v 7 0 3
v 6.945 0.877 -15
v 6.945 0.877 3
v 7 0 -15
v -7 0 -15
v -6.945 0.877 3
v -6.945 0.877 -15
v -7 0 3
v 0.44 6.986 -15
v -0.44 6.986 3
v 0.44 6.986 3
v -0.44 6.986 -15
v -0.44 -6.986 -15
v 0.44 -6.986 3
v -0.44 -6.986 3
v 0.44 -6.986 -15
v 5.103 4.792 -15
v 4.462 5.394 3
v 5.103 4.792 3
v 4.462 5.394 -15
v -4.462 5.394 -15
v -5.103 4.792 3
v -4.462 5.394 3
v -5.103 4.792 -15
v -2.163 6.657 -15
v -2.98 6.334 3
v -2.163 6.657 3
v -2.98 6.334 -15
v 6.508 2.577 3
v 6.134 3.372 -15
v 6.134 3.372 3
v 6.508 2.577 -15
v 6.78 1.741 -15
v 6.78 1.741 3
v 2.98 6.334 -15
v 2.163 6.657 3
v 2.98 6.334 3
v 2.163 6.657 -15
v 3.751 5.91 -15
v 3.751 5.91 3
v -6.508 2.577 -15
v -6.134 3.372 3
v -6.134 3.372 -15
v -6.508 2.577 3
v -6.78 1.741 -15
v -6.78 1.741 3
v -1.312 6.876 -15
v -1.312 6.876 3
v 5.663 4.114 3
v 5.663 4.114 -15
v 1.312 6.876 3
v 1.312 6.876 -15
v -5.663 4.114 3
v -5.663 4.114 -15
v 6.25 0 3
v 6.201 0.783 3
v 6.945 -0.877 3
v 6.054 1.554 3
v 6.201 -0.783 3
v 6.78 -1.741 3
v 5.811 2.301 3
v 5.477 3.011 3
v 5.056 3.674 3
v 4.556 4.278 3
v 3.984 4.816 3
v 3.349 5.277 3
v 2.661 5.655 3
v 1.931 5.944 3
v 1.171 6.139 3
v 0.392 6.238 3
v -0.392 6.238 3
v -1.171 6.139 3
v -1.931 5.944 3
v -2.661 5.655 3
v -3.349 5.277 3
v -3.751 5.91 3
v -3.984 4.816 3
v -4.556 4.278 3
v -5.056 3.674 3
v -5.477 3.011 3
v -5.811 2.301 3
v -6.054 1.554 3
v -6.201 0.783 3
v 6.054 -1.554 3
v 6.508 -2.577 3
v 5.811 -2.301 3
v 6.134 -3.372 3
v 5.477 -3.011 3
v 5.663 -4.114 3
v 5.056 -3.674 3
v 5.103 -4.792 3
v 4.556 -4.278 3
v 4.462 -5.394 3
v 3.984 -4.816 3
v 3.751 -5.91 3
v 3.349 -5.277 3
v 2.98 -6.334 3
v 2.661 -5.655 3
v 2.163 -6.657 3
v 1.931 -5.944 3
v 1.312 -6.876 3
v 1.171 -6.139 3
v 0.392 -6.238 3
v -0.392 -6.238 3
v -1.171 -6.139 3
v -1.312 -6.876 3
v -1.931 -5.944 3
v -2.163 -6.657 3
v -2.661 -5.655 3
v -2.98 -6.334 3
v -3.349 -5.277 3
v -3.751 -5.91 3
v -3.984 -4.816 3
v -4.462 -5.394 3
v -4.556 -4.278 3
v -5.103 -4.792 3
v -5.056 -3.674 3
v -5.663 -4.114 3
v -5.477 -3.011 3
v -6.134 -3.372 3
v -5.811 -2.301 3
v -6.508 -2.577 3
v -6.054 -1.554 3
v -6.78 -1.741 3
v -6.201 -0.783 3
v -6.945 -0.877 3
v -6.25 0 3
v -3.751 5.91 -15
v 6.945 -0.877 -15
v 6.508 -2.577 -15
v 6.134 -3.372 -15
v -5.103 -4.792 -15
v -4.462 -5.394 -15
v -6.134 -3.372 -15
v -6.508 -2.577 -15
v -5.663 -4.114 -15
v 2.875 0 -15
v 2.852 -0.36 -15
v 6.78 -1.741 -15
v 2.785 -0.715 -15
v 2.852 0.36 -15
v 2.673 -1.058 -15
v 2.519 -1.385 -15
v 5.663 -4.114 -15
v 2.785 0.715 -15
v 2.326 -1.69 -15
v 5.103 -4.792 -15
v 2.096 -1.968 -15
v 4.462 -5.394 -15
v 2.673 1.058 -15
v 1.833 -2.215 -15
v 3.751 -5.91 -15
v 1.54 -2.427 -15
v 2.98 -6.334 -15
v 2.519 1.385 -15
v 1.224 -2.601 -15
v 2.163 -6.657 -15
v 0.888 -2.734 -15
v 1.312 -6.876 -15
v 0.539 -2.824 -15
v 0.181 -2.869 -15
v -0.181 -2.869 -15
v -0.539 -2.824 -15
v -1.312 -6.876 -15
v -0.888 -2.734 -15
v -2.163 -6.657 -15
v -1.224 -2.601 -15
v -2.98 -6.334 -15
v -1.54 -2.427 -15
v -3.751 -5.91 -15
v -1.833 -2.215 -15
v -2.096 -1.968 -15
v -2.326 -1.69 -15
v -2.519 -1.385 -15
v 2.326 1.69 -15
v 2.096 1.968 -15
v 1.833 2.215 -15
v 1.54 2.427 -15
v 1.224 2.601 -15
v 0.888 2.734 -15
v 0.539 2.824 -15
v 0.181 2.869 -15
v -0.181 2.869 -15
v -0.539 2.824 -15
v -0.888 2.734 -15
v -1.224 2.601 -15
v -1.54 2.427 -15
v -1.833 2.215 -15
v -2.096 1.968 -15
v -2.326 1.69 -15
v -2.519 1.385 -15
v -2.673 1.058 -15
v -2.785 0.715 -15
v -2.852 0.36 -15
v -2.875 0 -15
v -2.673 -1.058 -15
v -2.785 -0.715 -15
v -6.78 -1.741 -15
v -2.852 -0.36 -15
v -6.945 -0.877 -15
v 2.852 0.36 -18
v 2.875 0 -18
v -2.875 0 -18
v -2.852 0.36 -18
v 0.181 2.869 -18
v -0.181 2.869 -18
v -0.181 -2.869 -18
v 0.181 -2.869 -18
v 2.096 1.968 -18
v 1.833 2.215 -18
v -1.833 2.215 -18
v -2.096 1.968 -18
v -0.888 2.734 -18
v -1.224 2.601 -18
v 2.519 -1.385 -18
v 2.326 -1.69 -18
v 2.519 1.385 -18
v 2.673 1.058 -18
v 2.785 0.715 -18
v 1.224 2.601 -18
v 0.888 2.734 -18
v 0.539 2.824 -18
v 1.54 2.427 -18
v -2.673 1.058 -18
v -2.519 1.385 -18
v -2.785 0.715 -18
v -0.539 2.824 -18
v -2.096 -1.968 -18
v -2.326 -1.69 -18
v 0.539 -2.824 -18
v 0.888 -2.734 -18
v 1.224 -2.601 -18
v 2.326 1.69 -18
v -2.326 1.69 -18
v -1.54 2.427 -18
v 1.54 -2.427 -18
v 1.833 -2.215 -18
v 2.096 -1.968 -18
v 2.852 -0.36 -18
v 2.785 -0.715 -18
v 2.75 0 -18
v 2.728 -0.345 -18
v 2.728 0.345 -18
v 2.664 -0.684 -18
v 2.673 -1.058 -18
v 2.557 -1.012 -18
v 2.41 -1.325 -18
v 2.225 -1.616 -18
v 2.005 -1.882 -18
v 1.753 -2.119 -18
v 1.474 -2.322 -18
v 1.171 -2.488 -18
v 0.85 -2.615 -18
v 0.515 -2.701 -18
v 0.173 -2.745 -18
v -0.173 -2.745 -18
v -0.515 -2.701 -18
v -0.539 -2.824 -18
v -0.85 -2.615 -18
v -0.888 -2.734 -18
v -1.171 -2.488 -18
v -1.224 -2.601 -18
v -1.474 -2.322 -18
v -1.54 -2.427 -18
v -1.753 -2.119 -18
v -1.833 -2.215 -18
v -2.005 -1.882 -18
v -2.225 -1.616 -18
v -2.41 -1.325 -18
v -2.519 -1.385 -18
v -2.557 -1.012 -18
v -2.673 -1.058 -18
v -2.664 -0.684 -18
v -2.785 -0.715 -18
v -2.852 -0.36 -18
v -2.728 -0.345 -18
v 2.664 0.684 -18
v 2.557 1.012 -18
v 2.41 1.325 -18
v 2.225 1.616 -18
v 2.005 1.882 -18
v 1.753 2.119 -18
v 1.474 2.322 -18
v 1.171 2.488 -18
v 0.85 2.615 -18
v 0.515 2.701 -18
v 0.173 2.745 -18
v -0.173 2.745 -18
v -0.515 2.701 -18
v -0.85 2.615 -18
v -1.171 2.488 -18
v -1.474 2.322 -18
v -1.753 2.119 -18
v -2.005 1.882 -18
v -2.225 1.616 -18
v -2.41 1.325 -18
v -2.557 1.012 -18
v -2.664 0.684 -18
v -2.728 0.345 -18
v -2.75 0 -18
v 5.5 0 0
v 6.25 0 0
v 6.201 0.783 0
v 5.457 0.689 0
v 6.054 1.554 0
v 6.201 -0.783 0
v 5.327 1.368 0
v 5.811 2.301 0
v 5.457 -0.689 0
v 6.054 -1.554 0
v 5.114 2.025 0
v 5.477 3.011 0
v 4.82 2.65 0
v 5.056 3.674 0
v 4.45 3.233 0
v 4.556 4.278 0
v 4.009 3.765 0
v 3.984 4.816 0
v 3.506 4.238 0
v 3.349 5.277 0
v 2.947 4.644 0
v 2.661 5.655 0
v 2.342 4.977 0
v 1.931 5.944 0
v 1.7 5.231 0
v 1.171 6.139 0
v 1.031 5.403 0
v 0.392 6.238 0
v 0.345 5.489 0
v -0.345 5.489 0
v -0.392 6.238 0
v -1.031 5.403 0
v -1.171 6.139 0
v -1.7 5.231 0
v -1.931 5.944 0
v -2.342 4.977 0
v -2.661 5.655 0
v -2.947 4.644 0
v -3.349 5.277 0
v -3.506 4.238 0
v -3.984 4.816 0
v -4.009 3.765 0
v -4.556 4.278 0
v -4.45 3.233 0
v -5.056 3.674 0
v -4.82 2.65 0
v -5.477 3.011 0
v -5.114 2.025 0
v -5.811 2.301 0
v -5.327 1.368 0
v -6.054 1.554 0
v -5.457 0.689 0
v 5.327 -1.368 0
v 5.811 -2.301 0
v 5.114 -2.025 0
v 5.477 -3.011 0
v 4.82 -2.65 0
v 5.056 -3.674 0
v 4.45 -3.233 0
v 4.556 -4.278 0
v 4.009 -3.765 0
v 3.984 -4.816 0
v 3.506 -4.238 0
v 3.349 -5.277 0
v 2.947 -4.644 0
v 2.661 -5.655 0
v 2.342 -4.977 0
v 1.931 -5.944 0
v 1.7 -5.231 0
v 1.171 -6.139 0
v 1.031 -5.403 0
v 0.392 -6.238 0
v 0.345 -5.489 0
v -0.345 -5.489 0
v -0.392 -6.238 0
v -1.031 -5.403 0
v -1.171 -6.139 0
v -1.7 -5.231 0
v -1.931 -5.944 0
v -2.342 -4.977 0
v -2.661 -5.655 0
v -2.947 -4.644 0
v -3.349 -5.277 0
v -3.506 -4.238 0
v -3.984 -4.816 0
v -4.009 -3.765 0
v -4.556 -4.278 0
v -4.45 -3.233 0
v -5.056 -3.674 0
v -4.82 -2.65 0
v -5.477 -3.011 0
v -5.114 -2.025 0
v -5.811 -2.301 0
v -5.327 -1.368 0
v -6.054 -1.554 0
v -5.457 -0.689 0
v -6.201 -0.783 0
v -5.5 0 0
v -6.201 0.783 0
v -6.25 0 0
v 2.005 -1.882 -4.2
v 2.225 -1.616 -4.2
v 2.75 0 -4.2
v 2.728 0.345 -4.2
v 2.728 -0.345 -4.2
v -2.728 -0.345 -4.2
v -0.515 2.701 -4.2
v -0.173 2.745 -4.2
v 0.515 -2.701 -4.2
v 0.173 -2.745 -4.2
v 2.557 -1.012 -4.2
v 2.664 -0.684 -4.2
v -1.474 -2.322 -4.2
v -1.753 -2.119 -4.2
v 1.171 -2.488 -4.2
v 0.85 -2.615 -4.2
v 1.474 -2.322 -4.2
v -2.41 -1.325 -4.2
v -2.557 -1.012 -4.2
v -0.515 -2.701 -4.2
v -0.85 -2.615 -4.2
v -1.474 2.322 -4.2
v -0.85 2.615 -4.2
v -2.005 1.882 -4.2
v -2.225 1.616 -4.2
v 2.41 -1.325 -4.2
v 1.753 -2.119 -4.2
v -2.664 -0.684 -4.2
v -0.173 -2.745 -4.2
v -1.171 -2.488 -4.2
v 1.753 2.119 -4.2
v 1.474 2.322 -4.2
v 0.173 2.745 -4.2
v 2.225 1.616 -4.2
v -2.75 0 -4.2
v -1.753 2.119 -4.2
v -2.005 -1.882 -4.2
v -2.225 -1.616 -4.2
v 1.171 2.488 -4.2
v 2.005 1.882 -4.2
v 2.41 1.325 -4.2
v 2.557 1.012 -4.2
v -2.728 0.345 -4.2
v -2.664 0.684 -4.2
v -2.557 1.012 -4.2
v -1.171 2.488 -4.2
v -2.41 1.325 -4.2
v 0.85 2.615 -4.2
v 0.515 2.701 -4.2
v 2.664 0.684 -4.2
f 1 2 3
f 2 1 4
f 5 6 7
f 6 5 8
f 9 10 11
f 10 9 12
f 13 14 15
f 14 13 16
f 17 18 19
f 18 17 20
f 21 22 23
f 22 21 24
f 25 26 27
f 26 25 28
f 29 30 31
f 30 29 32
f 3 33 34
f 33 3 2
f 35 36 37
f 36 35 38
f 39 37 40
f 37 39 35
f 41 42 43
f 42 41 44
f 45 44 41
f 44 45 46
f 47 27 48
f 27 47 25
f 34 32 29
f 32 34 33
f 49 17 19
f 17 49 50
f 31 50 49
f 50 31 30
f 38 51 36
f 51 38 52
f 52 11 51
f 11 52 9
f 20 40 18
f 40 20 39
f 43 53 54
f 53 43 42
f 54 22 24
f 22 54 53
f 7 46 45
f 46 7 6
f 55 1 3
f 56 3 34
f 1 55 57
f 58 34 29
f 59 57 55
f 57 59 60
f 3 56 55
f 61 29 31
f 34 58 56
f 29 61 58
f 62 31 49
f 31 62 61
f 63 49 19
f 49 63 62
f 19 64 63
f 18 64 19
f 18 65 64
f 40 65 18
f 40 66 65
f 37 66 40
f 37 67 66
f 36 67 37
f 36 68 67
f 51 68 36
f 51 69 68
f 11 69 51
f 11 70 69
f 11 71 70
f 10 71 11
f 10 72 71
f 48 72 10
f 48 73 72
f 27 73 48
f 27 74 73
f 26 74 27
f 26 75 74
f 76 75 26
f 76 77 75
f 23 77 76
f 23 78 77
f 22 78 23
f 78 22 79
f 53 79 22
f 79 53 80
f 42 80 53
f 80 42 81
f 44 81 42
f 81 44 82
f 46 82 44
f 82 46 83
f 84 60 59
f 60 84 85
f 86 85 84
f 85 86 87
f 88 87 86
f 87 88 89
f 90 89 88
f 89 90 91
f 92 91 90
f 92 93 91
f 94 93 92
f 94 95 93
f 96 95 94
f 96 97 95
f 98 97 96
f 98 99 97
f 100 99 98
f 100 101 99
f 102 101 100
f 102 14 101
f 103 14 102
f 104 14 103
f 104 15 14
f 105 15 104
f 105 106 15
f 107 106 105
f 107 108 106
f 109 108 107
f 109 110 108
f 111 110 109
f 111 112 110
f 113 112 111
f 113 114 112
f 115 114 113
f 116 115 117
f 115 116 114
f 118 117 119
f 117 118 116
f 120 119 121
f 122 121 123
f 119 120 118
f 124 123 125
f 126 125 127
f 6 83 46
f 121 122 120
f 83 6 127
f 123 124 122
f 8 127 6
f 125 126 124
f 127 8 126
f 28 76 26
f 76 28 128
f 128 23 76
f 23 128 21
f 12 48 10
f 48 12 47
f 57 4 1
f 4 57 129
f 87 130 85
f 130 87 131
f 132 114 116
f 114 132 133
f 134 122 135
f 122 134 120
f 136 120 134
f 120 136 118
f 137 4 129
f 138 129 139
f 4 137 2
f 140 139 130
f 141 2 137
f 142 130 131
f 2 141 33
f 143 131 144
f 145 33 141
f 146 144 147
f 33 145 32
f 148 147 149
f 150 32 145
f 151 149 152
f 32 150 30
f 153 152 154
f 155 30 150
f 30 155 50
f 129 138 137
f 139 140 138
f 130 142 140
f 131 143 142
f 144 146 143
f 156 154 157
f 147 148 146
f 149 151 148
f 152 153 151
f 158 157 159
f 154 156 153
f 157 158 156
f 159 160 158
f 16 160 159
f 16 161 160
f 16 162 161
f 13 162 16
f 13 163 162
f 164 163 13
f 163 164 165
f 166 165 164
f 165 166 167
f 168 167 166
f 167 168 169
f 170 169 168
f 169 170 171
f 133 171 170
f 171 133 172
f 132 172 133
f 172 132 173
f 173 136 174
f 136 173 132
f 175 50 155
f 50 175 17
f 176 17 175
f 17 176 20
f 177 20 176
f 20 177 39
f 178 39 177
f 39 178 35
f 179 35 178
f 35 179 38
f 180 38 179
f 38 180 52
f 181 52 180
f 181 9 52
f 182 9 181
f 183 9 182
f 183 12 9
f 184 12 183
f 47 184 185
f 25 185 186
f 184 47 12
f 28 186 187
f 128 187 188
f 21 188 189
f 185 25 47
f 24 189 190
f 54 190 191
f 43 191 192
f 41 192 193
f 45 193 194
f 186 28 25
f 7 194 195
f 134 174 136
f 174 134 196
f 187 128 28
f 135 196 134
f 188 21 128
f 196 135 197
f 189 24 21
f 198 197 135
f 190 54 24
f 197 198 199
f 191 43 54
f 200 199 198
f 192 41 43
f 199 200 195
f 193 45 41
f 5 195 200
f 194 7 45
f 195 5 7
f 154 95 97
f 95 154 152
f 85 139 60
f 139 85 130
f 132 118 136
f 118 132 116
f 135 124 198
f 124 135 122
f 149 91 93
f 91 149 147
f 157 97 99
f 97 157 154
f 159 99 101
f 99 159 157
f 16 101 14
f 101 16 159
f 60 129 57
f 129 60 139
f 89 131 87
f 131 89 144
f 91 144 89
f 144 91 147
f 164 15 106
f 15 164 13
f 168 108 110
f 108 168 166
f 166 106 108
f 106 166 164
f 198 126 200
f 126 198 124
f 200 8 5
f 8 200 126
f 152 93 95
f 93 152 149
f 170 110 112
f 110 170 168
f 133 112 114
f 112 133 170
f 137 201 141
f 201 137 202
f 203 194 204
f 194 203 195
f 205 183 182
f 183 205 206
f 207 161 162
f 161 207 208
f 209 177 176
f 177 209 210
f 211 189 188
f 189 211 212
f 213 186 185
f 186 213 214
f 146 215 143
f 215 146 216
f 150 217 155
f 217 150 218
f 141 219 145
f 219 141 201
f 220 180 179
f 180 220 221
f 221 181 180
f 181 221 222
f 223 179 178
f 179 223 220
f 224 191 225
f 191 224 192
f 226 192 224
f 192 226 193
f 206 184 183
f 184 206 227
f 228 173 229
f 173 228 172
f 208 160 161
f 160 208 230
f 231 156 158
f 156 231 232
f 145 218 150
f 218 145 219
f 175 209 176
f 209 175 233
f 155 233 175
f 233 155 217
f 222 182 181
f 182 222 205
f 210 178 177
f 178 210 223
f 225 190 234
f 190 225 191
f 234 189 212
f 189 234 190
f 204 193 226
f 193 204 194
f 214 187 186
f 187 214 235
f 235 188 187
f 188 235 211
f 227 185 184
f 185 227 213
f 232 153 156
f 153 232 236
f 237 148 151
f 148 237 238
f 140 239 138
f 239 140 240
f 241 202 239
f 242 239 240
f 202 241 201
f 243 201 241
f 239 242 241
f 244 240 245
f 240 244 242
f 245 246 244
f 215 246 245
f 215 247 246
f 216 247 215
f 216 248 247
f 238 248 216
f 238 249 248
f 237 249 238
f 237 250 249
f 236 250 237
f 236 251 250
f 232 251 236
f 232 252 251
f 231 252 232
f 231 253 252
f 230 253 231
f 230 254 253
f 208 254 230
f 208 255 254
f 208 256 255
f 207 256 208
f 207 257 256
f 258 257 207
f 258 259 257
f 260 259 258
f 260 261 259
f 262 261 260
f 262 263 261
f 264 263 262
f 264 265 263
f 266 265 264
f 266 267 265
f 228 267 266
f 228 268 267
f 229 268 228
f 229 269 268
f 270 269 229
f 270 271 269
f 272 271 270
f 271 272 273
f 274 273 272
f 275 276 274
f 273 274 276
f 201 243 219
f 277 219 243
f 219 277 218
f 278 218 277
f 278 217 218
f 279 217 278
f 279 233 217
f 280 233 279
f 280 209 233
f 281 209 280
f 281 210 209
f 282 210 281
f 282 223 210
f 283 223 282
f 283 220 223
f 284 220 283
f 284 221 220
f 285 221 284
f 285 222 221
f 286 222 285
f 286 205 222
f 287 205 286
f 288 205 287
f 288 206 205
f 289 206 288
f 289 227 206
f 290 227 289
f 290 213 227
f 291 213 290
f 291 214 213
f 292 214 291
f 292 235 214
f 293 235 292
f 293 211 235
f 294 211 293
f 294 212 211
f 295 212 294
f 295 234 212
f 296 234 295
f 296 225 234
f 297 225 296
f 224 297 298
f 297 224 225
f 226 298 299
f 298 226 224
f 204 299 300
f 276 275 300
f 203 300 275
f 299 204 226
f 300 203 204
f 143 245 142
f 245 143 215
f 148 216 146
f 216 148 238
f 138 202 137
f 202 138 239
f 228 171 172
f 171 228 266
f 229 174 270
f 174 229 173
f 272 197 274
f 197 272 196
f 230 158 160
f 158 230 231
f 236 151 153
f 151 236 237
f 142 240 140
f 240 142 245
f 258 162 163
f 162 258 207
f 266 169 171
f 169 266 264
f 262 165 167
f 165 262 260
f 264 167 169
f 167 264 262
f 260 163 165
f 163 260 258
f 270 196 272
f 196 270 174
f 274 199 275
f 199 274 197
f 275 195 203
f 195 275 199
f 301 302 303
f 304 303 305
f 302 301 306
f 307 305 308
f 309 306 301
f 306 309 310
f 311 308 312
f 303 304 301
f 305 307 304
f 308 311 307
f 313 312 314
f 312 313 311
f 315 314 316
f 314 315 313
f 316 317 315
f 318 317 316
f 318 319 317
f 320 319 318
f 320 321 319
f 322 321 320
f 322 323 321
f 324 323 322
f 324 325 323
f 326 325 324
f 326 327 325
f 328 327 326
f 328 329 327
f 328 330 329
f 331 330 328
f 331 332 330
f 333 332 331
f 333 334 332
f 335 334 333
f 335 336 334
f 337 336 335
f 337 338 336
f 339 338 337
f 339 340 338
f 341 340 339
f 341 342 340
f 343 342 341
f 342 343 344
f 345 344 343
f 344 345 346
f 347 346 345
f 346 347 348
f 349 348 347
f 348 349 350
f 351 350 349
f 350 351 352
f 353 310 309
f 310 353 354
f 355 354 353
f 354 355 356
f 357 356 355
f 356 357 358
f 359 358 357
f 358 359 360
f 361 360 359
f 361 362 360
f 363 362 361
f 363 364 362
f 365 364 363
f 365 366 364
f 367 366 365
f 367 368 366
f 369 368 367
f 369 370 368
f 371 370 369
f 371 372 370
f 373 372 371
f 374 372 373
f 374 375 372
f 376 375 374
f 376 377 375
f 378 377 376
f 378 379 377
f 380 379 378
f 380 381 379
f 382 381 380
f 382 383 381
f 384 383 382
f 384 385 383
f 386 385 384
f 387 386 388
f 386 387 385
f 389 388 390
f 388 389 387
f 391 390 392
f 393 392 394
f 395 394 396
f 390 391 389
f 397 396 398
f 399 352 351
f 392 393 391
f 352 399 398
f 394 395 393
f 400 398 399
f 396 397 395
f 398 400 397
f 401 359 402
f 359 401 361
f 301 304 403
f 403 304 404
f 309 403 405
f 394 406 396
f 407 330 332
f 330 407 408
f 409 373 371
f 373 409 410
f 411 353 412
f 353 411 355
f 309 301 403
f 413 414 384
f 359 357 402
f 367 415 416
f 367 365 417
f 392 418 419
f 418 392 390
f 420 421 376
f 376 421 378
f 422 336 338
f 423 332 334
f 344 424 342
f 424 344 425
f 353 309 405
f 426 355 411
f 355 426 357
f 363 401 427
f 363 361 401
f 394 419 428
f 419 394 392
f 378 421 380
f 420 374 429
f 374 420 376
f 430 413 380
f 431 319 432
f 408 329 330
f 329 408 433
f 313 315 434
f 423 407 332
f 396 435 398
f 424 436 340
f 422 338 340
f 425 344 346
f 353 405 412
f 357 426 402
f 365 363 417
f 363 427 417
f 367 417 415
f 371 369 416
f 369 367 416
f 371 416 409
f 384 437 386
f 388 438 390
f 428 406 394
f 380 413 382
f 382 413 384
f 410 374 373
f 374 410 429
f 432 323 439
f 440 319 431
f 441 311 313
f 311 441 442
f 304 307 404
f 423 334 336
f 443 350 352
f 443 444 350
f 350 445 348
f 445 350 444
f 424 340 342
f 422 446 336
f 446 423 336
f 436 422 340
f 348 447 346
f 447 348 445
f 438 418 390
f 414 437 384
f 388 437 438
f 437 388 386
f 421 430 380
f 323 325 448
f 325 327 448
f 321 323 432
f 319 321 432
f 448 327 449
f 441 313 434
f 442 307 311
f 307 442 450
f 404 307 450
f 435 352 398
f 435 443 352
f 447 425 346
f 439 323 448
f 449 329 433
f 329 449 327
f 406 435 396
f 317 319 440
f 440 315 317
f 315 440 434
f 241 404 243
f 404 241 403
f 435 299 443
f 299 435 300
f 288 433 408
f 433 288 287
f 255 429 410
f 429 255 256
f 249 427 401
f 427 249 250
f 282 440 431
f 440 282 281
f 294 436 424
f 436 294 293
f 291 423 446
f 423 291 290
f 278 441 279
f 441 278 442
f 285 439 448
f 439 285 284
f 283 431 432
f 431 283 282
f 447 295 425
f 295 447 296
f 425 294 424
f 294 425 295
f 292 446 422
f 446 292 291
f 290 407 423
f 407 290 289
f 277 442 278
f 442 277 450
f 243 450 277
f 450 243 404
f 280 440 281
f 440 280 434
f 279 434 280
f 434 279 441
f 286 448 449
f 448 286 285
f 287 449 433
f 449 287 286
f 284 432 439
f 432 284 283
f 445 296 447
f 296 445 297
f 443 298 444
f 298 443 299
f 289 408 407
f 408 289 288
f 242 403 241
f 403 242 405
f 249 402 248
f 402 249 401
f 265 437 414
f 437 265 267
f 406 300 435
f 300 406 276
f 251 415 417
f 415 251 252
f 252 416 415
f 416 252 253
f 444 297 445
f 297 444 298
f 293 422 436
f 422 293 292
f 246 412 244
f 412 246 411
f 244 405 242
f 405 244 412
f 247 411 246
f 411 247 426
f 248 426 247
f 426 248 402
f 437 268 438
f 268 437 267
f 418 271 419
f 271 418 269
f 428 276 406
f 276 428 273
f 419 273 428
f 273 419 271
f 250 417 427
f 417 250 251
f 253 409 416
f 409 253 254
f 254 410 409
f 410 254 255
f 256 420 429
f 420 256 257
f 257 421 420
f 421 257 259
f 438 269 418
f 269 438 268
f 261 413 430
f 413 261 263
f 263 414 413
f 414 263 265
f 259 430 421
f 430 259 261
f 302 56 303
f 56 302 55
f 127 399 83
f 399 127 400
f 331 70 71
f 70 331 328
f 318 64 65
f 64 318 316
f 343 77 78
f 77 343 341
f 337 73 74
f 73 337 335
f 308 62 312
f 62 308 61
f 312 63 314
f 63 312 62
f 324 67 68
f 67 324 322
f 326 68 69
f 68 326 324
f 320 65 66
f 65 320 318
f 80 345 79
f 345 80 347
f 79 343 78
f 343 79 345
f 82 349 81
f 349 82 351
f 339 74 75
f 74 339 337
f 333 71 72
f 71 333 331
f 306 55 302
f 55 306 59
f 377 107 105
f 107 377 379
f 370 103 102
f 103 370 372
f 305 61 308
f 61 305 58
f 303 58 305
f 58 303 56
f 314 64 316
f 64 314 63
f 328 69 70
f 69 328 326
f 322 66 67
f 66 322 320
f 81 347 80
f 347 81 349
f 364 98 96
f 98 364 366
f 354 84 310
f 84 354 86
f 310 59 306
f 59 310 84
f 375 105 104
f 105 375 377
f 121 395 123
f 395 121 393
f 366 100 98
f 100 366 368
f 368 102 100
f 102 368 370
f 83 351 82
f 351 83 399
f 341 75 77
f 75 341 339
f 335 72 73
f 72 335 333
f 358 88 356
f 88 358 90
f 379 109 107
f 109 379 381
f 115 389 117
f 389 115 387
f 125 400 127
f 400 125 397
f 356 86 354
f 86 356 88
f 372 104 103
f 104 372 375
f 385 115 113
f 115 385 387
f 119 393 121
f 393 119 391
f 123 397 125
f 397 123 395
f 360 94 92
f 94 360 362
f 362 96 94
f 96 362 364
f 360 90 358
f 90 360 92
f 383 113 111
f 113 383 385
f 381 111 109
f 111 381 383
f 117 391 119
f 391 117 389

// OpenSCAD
$fn = 50;


difference() {
	union() {
		translate(v = [0, 0, -15.0000000000]) {
			cylinder(h = 18, r = 7.0000000000);
		}
		#translate(v = [0, 0, -18.0000000000]) {
			cylinder(h = 18, r = 2.8750000000);
		}
	}
	union() {
		translate(v = [0, 0, 0]) {
			rotate(a = [0, 0, 0]) {
				difference() {
					union() {
						translate(v = [0, 0, -18.0000000000]) {
							cylinder(h = 18, r = 2.2500000000);
						}
						translate(v = [0, 0, -4.2000000000]) {
							cylinder(h = 4.2000000000, r1 = 2.7500000000, r2 = 5.5000000000);
						}
						translate(v = [0, 0, -18.0000000000]) {
							cylinder(h = 18, r = 2.7500000000);
						}
						translate(v = [0, 0, -18.0000000000]) {
							cylinder(h = 18, r = 2.2500000000);
						}
					}
					union();
				}
			}
		}
		#cylinder(h = 3, r = 6.2500000000);
	}
}
